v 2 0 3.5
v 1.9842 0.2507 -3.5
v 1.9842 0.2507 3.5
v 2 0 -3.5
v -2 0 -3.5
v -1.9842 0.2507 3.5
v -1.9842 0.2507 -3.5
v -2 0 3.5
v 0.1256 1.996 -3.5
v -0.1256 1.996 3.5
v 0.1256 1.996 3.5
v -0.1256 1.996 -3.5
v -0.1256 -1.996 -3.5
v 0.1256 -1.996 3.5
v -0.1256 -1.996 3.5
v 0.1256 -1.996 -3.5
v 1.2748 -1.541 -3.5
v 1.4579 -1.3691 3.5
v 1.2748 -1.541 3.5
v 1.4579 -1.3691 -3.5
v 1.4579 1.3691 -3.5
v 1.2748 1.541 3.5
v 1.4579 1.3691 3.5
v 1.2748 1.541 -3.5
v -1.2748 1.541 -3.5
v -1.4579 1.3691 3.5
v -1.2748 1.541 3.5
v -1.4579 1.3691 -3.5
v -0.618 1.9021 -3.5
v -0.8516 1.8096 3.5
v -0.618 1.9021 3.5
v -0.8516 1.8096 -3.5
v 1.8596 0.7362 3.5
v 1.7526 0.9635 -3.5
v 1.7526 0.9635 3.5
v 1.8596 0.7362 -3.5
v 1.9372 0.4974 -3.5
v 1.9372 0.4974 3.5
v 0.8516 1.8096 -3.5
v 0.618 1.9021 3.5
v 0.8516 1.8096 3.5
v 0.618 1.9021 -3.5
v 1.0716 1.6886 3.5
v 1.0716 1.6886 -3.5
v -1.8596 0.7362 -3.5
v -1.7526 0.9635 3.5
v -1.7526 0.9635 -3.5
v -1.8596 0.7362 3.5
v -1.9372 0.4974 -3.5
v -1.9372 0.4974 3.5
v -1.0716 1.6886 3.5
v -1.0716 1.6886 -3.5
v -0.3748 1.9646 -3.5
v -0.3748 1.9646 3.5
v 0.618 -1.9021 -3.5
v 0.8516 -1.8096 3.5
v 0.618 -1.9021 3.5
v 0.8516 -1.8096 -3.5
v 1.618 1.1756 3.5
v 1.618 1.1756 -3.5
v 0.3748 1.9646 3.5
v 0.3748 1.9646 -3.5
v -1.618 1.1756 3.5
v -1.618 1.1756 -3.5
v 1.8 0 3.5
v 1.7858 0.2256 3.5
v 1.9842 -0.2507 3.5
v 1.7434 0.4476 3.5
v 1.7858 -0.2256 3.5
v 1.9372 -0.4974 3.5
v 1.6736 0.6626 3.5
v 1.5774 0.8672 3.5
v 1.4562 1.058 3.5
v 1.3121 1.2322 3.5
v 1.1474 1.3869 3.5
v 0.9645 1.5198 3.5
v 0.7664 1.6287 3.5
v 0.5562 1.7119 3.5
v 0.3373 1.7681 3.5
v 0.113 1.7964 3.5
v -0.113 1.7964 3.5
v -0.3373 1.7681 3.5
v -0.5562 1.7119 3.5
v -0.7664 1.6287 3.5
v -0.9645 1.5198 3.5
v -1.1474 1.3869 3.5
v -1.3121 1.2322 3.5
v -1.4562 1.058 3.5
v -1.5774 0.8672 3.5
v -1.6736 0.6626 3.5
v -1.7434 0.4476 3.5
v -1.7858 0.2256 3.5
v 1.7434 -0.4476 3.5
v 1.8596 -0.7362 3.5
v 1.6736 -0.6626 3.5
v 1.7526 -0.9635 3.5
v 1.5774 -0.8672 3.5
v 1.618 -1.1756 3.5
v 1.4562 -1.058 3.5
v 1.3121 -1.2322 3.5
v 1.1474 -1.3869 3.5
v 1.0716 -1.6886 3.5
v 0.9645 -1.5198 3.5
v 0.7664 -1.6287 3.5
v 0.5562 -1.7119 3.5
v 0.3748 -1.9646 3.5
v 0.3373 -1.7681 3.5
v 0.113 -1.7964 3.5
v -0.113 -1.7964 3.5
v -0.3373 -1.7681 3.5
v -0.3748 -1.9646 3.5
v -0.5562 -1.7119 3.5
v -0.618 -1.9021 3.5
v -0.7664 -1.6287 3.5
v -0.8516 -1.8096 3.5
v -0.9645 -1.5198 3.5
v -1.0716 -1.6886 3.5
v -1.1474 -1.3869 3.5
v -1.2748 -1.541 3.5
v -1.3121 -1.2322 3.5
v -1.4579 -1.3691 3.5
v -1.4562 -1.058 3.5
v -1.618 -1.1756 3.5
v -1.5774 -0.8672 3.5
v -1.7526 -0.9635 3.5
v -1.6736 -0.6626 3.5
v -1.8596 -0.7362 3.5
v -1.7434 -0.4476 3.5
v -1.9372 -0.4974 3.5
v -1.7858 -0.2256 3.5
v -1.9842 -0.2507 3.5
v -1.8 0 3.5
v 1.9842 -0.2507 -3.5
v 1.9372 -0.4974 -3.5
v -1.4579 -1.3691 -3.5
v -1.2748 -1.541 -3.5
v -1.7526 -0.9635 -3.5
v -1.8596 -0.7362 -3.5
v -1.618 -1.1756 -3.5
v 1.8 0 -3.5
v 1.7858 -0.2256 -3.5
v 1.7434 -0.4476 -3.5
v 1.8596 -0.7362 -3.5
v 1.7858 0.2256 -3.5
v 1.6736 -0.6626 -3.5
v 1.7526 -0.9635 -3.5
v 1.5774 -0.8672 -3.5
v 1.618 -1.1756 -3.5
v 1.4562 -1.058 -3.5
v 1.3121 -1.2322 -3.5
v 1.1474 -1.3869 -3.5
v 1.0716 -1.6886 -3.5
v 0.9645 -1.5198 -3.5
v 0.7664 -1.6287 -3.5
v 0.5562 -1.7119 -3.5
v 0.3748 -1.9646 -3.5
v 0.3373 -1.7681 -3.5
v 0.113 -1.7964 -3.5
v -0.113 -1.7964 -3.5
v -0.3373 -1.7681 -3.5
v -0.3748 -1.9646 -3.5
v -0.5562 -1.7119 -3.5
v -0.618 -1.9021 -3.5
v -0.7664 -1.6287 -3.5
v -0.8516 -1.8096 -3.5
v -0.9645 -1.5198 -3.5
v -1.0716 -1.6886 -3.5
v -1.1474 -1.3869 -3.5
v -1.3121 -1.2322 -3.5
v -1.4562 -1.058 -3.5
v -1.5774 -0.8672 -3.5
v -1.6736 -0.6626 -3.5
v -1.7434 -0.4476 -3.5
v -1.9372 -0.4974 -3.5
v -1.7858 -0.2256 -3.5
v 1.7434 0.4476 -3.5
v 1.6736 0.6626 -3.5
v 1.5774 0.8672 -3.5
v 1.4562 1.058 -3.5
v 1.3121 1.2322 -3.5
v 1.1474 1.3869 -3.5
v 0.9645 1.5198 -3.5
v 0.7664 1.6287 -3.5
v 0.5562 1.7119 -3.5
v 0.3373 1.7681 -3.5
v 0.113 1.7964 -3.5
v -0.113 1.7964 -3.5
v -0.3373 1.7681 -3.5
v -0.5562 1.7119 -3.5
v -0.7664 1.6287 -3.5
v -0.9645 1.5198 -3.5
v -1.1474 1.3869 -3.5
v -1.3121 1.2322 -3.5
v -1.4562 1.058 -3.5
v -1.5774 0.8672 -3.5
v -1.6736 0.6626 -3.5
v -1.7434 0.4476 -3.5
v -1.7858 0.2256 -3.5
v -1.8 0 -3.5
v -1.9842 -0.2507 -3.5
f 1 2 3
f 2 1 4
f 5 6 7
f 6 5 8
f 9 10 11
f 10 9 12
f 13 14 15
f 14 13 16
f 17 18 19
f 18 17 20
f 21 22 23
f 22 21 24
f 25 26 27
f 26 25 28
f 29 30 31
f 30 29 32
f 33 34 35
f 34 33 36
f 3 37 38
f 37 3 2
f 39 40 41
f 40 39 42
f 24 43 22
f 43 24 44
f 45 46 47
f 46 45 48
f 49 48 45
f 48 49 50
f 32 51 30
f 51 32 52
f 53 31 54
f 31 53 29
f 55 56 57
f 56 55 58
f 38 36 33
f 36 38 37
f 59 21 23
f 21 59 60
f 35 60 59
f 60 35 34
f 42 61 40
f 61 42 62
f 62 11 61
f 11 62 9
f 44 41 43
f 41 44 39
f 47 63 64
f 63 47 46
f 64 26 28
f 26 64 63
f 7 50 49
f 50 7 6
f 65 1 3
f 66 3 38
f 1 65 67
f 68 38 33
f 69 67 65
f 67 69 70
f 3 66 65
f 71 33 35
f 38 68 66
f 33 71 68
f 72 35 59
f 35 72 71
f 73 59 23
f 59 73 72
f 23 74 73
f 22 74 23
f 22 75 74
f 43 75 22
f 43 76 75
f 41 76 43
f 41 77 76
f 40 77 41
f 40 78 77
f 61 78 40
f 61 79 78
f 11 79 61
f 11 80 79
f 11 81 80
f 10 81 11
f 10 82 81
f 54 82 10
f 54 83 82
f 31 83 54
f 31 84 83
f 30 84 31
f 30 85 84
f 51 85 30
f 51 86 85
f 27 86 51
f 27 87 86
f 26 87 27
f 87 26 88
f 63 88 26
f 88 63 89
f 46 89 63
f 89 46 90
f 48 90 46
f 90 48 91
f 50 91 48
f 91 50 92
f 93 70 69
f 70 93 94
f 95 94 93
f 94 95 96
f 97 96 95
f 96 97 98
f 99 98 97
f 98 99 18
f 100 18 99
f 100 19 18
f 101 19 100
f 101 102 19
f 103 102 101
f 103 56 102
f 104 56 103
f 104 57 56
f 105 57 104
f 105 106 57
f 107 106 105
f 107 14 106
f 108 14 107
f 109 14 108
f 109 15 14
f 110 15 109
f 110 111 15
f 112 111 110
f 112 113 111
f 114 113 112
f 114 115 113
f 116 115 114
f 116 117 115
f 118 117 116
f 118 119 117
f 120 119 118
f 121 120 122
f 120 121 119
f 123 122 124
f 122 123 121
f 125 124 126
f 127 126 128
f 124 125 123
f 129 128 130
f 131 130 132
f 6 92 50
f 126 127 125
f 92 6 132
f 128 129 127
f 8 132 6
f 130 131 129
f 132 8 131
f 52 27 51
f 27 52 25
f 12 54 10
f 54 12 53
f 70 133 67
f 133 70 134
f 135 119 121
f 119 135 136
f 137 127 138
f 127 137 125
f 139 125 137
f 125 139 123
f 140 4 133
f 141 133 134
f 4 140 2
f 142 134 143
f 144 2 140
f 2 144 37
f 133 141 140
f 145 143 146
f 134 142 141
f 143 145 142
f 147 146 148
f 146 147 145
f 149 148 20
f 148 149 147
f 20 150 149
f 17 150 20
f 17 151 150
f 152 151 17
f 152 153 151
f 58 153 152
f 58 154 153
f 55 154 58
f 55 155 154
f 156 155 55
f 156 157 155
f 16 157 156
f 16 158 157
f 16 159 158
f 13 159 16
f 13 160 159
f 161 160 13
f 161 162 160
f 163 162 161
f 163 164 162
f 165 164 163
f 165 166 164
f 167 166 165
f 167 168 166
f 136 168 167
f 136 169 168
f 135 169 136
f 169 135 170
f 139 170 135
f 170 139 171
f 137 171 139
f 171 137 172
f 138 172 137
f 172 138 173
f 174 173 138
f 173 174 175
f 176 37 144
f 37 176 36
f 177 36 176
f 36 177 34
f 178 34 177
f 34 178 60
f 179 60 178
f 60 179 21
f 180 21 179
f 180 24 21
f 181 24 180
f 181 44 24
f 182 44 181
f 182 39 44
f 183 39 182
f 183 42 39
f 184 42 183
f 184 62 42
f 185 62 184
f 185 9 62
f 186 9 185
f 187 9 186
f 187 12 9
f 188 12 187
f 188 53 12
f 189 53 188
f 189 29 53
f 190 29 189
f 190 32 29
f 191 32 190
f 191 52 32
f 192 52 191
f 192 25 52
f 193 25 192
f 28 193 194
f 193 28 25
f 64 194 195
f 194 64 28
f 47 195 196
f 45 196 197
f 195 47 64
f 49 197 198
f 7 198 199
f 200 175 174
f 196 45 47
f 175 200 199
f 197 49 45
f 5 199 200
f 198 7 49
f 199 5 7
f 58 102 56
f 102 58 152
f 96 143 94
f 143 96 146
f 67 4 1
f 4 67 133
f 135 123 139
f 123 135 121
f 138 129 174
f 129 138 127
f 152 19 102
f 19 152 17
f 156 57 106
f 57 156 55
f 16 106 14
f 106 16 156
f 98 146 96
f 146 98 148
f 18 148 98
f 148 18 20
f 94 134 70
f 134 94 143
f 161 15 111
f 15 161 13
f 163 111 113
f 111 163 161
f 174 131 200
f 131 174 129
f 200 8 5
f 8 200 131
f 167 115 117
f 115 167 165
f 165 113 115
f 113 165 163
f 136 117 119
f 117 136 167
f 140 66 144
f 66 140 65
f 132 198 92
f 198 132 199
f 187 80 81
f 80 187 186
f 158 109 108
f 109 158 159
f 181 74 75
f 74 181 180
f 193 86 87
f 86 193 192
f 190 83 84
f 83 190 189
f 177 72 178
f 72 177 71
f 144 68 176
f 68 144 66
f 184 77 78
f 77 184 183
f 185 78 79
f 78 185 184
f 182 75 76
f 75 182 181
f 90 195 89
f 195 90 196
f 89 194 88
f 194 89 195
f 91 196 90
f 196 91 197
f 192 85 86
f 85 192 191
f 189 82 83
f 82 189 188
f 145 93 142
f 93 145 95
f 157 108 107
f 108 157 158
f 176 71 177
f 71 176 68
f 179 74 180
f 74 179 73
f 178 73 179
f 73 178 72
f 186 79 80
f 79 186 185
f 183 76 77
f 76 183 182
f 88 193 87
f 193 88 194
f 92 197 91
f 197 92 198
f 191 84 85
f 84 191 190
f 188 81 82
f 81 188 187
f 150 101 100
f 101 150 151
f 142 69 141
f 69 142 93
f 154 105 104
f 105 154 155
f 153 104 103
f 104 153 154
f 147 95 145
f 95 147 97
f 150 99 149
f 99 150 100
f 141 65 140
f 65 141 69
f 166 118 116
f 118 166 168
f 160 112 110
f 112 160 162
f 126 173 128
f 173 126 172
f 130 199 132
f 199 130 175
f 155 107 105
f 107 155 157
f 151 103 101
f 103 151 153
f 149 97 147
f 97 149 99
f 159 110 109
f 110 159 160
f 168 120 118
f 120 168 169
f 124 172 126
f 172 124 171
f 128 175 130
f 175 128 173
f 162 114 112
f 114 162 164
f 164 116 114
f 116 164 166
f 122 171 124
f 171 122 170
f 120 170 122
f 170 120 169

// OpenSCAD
$fn = 50;


difference() {
	union() {
		translate(v = [0, 0, -3.5000000000]) {
			cylinder(h = 7, r = 2.0000000000);
		}
	}
	union() {
		translate(v = [0, 0, -100.0000000000]) {
			cylinder(h = 200, r = 1.8000000000);
		}
	}
}
